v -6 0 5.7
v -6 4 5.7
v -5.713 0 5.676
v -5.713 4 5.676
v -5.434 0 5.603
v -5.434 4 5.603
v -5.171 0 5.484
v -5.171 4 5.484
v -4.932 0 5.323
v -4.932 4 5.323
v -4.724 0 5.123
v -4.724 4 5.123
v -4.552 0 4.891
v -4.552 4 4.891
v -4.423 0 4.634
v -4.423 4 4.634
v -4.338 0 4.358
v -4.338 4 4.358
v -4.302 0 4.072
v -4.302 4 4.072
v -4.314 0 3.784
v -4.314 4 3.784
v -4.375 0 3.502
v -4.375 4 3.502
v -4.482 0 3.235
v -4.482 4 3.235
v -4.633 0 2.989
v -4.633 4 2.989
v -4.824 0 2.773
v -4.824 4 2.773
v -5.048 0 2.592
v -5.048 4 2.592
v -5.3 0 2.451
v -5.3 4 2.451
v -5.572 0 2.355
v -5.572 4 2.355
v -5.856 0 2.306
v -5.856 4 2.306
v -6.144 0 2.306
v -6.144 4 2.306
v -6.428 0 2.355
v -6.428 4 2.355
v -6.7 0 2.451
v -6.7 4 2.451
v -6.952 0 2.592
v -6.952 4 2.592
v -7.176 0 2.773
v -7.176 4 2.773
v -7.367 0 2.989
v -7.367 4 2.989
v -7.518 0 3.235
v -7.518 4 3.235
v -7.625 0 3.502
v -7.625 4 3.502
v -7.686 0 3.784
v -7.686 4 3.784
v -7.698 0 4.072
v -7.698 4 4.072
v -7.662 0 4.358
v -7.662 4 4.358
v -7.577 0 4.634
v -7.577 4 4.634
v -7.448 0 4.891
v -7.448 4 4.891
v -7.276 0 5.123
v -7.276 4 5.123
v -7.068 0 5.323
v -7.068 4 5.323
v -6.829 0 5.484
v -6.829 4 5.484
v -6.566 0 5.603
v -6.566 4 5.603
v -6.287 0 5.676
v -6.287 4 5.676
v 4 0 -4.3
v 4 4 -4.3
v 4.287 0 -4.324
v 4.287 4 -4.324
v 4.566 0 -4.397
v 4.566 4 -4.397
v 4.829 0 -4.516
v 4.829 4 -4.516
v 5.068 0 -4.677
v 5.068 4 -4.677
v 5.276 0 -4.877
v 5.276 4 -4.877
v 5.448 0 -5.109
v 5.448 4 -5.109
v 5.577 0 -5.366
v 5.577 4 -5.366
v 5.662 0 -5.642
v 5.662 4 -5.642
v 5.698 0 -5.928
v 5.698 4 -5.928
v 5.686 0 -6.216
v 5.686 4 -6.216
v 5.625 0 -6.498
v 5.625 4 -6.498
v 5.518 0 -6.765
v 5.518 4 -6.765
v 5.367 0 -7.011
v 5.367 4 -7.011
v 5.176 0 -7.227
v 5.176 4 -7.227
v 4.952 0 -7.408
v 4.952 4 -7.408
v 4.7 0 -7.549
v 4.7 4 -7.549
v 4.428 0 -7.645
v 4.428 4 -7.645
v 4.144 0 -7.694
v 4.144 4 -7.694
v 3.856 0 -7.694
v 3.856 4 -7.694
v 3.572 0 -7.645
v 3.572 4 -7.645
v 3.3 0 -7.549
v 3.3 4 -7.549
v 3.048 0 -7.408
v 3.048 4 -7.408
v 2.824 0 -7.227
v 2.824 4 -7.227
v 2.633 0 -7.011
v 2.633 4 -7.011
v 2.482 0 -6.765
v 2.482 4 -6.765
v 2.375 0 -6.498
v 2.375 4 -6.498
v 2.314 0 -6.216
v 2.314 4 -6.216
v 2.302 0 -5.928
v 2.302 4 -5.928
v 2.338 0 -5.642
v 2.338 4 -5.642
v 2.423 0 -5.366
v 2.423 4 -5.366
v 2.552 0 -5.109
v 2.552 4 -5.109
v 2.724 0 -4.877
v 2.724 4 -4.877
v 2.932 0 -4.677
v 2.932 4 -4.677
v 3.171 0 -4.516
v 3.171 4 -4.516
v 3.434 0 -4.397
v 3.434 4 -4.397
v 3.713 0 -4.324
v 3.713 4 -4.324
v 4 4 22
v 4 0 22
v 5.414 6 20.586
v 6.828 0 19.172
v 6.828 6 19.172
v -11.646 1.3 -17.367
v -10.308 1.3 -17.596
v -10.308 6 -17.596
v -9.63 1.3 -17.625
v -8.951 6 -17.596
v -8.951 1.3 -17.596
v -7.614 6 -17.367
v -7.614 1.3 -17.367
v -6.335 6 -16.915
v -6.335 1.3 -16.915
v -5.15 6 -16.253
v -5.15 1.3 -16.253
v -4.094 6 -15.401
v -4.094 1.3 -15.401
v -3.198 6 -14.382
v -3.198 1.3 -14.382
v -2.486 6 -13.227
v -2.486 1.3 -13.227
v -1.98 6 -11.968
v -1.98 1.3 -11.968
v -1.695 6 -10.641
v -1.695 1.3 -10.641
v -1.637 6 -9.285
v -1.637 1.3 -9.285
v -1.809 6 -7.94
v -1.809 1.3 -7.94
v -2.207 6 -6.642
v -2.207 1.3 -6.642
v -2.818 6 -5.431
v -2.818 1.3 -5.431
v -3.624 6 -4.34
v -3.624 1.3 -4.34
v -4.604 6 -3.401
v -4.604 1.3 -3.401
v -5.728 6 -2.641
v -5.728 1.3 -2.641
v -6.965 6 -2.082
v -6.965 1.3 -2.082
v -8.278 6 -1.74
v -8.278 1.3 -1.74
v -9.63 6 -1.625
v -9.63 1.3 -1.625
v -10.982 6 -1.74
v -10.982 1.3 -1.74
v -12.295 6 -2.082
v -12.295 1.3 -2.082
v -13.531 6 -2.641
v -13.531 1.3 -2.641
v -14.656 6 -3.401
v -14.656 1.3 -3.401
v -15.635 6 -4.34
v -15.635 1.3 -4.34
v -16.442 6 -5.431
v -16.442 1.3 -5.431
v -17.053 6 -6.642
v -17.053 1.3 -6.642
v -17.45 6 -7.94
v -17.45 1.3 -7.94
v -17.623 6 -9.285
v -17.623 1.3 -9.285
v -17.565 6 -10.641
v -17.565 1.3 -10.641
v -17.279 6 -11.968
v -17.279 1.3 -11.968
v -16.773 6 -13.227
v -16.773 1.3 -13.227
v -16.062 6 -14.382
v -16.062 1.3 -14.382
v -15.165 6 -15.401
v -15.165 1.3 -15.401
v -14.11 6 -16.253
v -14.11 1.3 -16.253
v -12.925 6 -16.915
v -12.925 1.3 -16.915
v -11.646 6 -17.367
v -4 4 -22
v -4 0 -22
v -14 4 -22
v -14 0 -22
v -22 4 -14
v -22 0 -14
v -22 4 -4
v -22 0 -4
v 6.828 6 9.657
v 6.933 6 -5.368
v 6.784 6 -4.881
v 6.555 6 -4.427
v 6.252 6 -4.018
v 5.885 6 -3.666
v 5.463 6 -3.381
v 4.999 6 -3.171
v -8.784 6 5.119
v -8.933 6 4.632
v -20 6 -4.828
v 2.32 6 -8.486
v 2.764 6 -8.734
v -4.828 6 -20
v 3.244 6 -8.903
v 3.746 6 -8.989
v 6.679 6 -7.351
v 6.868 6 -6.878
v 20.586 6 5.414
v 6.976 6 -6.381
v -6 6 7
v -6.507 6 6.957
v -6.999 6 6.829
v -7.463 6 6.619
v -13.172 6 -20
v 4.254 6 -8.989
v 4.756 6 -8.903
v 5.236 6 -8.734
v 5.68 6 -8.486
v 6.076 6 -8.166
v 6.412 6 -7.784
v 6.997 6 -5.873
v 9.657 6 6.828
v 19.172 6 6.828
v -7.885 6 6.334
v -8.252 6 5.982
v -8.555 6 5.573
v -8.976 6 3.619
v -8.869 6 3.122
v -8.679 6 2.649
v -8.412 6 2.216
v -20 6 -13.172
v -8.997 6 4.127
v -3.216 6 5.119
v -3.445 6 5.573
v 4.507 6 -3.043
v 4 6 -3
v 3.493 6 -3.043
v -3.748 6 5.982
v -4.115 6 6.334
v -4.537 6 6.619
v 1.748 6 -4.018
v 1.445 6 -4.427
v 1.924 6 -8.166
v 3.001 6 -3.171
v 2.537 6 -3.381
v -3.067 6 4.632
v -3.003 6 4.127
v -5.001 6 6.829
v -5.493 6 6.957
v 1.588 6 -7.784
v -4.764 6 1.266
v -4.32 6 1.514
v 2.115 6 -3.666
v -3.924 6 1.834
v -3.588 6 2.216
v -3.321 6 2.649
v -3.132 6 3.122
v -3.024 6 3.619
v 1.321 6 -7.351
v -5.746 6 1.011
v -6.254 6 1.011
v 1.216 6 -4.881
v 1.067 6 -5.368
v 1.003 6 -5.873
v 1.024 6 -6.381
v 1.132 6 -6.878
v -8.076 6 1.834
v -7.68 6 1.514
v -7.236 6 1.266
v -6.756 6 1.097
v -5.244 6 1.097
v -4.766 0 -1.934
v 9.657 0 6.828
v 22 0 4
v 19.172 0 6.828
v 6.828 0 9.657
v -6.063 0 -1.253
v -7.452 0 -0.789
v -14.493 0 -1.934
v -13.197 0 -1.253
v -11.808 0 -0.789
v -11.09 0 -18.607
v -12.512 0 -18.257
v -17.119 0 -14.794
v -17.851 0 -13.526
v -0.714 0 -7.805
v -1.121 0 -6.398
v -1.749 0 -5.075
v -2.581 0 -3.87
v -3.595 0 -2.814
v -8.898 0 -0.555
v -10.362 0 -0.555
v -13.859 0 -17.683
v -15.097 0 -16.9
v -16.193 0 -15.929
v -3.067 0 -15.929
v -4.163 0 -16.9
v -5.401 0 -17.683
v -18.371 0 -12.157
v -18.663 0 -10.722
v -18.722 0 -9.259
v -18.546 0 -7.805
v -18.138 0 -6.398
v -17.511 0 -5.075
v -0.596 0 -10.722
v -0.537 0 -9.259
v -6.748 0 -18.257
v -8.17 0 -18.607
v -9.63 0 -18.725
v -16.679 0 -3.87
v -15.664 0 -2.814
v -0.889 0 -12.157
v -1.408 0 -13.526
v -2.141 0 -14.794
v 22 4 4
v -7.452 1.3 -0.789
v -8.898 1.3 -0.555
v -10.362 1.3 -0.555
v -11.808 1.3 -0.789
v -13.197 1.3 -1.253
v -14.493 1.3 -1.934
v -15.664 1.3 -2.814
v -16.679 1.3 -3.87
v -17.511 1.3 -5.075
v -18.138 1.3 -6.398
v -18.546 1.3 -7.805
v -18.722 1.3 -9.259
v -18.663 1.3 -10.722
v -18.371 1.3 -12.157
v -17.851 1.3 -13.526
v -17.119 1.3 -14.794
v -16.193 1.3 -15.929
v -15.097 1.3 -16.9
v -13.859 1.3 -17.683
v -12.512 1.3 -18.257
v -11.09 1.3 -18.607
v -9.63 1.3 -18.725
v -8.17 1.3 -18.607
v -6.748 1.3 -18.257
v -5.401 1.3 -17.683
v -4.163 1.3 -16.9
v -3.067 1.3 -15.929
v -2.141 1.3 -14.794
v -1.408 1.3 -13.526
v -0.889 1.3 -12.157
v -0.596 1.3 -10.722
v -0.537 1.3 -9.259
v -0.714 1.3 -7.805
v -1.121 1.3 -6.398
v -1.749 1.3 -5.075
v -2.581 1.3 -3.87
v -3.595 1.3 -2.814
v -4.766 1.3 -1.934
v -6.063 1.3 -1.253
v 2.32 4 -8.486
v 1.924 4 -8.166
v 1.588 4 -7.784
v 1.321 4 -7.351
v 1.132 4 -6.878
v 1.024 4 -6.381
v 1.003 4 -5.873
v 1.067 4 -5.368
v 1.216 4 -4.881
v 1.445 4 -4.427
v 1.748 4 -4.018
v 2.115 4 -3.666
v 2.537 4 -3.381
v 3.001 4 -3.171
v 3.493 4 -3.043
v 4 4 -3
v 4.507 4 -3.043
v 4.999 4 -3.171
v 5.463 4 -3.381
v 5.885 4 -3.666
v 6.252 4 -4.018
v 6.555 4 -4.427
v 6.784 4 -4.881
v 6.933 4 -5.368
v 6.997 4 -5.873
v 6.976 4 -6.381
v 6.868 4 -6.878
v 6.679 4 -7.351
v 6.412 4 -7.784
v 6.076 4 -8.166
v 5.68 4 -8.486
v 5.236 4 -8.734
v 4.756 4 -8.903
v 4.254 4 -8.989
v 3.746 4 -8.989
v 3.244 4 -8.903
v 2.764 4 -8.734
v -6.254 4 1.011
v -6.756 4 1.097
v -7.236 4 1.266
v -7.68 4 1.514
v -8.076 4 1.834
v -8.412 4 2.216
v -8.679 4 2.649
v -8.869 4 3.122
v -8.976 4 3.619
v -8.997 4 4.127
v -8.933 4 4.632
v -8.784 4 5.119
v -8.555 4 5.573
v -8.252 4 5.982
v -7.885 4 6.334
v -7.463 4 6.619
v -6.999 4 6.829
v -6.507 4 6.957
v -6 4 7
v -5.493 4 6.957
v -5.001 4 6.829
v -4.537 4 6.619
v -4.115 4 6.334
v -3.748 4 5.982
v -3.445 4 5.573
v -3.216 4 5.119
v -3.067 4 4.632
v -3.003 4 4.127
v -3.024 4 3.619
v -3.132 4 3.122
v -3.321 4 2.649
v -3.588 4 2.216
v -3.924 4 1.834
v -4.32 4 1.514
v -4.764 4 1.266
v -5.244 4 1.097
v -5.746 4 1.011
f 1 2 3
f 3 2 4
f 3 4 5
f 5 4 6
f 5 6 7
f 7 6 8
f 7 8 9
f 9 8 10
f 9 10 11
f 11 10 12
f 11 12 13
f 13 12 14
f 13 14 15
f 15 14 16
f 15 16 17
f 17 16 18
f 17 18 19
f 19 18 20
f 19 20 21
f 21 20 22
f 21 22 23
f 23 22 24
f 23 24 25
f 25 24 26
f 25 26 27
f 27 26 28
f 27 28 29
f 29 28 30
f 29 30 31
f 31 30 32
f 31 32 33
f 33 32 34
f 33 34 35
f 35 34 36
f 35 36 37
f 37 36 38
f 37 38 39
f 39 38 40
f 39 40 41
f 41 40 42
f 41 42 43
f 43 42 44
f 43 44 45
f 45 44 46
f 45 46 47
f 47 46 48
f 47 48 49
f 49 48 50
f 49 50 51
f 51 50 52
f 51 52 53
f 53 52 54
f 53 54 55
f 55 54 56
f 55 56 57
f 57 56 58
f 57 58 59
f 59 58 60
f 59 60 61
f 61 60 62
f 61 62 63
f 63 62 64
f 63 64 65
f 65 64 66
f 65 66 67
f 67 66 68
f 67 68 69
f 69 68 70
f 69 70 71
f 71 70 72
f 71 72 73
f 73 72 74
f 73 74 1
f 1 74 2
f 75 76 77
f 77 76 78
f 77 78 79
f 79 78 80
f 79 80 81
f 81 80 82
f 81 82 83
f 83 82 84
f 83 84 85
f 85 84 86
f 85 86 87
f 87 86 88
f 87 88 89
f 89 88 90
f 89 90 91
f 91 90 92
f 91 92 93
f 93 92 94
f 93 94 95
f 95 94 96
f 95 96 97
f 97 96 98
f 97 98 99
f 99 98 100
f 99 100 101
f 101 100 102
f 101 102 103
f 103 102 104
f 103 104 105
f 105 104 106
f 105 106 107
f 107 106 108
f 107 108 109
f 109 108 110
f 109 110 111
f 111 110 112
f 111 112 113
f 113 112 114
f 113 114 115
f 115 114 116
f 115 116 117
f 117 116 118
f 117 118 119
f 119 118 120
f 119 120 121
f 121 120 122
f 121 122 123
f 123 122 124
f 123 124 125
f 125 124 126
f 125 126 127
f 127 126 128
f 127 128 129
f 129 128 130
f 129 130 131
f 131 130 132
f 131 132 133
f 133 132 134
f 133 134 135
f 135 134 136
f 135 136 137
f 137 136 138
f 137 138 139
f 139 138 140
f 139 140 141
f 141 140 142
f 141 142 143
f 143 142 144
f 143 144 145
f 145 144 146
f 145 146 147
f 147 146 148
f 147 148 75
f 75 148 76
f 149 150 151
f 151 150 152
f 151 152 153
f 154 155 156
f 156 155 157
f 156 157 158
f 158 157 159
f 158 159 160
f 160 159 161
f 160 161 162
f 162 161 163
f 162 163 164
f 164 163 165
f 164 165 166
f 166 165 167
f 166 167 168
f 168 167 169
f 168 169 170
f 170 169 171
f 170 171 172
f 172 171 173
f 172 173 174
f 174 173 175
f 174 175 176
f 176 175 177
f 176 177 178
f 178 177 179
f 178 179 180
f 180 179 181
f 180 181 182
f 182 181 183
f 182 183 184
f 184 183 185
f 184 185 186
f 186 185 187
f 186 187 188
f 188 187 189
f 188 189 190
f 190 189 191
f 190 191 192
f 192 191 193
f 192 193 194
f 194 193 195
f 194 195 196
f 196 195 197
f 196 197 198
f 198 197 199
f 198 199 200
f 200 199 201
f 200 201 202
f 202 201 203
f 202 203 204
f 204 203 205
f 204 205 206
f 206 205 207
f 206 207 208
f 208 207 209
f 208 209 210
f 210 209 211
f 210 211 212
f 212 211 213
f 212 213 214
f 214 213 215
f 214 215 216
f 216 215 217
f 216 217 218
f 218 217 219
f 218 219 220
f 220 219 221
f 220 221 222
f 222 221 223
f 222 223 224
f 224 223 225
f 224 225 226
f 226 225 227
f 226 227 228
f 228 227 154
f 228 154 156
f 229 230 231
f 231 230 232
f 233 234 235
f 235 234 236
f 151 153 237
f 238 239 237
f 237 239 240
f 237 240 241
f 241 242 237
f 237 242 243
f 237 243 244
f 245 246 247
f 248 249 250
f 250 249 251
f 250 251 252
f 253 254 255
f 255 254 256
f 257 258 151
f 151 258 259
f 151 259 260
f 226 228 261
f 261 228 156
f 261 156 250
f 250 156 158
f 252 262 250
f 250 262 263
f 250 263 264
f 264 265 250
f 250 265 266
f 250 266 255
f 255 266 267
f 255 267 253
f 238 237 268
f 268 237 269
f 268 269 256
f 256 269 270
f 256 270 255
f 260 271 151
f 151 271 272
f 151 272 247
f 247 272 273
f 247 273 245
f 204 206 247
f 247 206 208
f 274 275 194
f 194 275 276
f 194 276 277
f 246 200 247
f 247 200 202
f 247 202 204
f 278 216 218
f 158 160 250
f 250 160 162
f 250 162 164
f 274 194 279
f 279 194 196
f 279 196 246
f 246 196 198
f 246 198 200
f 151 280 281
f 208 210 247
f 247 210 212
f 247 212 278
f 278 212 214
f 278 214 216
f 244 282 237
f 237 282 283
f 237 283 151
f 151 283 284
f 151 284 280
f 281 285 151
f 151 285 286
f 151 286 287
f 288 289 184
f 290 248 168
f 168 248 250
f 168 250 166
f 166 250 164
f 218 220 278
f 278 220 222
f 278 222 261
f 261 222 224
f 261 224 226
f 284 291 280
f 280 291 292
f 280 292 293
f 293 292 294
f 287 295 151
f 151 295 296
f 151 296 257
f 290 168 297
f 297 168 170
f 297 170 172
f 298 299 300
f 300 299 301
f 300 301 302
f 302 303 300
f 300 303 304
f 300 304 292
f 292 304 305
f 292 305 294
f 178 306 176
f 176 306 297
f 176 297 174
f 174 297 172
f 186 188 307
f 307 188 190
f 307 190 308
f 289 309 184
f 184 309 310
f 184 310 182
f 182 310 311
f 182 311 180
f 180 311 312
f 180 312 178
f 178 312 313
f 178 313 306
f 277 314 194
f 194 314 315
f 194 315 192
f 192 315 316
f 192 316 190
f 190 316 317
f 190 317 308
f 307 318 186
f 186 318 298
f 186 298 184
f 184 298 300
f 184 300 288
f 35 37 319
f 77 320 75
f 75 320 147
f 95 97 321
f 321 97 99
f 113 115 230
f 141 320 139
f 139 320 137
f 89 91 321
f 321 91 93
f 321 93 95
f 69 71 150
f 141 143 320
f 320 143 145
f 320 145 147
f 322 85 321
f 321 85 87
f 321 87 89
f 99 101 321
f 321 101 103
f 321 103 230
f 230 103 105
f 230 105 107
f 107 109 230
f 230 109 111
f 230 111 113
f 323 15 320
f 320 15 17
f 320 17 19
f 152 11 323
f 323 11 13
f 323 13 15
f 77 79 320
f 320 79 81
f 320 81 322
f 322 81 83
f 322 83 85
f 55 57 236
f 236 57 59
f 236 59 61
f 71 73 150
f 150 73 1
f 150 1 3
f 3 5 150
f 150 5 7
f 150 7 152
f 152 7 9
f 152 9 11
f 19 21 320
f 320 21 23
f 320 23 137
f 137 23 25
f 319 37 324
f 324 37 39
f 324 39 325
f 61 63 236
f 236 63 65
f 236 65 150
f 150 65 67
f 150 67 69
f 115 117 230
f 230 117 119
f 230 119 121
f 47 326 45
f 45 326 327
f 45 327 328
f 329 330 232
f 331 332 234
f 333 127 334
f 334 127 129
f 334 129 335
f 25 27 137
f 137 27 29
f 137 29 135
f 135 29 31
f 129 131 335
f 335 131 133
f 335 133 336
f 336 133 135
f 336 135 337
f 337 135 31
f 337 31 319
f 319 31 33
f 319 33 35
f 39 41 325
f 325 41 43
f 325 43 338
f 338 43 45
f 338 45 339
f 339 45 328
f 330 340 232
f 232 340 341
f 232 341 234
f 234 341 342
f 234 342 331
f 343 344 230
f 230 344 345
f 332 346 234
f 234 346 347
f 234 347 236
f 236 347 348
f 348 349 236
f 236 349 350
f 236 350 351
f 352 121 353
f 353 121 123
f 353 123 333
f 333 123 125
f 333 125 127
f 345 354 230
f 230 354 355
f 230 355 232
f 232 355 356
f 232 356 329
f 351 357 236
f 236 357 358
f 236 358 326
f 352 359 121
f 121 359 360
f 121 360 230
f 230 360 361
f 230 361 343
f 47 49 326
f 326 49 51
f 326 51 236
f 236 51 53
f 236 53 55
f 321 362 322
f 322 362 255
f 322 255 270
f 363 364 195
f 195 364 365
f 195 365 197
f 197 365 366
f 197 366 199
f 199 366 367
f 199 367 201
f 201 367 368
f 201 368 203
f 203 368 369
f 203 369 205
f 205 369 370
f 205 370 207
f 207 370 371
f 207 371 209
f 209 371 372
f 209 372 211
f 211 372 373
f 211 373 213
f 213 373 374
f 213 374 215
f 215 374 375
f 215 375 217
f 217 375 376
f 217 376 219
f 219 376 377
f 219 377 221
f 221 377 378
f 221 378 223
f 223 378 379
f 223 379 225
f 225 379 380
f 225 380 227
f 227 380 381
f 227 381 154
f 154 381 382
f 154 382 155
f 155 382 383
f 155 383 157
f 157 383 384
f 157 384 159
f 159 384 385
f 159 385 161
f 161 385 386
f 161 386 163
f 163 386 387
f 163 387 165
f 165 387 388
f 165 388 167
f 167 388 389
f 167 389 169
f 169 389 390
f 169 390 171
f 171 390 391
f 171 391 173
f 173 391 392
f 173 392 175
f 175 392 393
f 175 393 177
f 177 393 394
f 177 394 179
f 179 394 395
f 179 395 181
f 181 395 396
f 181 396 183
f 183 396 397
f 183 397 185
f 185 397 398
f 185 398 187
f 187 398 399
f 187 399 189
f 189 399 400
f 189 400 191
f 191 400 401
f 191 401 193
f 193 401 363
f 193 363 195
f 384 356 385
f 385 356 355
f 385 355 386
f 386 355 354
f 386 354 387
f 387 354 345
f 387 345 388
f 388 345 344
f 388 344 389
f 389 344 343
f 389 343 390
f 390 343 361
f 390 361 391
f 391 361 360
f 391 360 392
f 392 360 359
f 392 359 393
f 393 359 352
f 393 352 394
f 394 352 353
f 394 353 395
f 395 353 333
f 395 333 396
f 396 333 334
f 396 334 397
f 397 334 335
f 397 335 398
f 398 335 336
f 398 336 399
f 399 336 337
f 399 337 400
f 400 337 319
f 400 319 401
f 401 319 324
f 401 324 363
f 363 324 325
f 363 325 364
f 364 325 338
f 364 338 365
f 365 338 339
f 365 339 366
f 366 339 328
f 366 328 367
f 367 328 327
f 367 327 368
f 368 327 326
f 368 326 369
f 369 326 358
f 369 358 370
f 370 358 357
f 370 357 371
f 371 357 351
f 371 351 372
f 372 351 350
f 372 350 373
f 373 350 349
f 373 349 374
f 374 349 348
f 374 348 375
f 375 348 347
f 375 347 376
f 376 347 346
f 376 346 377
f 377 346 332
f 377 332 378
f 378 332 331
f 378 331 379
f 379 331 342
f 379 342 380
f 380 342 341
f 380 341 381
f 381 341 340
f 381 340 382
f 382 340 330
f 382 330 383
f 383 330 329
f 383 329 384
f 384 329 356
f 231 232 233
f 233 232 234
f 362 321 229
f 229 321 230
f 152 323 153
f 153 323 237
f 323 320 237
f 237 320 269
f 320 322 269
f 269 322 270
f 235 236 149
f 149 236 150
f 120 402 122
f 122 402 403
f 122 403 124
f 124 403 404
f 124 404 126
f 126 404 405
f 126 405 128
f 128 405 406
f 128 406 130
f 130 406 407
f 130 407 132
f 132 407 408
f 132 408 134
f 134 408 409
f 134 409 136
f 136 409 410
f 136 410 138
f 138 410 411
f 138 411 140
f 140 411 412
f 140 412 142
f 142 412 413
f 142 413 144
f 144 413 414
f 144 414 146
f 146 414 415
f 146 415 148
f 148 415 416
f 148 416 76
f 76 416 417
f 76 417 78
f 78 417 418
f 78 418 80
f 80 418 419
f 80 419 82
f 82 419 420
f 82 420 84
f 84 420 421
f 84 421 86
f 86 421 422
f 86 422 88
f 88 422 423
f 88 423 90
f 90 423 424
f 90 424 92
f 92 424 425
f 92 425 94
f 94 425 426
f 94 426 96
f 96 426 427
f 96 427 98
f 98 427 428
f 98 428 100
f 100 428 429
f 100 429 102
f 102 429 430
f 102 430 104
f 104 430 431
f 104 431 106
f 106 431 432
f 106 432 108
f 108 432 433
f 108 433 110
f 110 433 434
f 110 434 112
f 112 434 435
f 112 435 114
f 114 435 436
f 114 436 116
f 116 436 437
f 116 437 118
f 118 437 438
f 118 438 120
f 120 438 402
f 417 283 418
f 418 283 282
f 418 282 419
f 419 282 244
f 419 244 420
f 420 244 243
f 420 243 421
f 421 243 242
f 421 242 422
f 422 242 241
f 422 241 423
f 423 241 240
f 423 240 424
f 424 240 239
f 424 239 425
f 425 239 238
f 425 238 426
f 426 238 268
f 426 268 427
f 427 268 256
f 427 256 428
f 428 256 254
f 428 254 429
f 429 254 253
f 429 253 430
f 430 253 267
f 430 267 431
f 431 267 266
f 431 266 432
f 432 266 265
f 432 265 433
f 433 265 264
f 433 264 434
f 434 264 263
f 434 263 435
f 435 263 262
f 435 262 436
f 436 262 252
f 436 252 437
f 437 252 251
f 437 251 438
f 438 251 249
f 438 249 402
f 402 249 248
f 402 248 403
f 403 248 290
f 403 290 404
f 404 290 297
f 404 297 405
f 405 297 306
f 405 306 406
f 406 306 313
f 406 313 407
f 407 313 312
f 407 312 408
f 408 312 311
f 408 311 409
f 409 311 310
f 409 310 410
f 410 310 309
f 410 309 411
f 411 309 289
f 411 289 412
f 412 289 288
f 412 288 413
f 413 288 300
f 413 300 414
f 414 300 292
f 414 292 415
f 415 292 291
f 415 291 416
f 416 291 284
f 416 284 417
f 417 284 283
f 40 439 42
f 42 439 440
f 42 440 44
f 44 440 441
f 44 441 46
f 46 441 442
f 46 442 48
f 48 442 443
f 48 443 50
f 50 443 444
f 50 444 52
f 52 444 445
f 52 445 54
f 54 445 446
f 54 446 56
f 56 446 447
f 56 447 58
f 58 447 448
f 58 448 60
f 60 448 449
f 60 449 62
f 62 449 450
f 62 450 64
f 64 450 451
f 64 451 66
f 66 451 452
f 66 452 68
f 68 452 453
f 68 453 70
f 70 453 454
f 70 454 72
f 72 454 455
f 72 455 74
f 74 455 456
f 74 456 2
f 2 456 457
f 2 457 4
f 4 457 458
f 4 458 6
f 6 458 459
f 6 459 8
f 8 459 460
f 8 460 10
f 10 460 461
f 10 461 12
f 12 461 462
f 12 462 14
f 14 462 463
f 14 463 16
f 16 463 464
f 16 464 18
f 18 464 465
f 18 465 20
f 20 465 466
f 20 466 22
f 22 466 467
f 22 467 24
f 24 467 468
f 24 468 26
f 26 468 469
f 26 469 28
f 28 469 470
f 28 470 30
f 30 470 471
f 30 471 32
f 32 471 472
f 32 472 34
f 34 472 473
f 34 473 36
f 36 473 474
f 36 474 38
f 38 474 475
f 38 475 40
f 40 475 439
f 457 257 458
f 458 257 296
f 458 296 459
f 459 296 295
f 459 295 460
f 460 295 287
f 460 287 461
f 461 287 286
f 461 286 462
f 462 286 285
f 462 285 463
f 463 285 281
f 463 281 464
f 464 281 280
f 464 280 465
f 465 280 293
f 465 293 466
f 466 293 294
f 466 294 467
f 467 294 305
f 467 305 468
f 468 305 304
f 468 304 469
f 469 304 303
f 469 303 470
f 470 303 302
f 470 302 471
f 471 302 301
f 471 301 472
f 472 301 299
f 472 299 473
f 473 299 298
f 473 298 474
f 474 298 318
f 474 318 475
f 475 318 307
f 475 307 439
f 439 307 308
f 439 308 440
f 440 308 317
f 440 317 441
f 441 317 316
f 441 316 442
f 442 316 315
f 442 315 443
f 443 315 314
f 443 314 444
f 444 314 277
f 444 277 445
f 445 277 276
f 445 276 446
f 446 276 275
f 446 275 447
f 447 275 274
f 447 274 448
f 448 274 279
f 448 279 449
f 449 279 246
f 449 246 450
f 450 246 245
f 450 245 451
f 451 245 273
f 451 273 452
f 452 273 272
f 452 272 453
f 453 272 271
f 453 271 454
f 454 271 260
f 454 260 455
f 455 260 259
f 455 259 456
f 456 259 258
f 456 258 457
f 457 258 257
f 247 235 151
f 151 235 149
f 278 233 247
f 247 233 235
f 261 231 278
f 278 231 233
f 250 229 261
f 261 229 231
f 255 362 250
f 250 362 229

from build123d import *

# Parameters (mm, degrees)
SKETCH2_W           = 44
SKETCH2_H           = 44
BOSS_EXTRUDE1_DEPTH = 6
CHAMFER1_SIZE       = 18
SKETCH3_R           = 8
CUT_EXTRUDE1_DEPTH  = 32.685959036
SKETCH4_R           = 9.1
CUT_EXTRUDE2_DEPTH  = 1.3
CUT_EXTRUDE3_DEPTH  = 32.685959036
SKETCH7_R           = 1.7
CUT_EXTRUDE4_DEPTH  = 32.685959036
SKETCH8_R           = 3
CUT_EXTRUDE5_DEPTH  = 2
CHAMFER2_SIZE       = 2


with BuildPart() as part:
    # Sketch2 → Boss-Extrude1 (new body)
    with BuildSketch(Plane(origin=(0, 0, 0), x_dir=(1, 0, 0), z_dir=(0, 1, 0))):
        Rectangle(SKETCH2_W, SKETCH2_H)
    extrude(amount=BOSS_EXTRUDE1_DEPTH)

    # Chamfer1
    chamfer1_edges = [part.edges().sort_by_distance(p)[0] for p in [
        (22, 3, 22),
    ]]
    chamfer(chamfer1_edges, length=CHAMFER1_SIZE)

    # Sketch3 → Cut-Extrude1 (cut, through all)
    with BuildSketch(Plane(origin=(0, 6, 0), x_dir=(1, 0, 0), z_dir=(0, 1, 0))):
        with Locations(Location((-9.629833996, 9.625, 0), (0, 0, 270))):
            Circle(SKETCH3_R)
    extrude(amount=-CUT_EXTRUDE1_DEPTH, mode=Mode.SUBTRACT)

    # Sketch4 → Cut-Extrude2 (cut)
    with BuildSketch(Plane(origin=(0, 0, 0), x_dir=(-1, 0, 0), z_dir=(0, -1, 0))):
        with Locations(Location((9.629833996, 9.625, 0), (0, 0, 90))):
            Circle(SKETCH4_R)
    extrude(amount=-CUT_EXTRUDE2_DEPTH, mode=Mode.SUBTRACT)

    # Sketch5 → Cut-Extrude3 (cut, through all)
    with BuildSketch(Plane(origin=(0, 6, 0), x_dir=(1, 0, 0), z_dir=(0, 1, 0))):
        Polygon((-14, 22), (-22, 14), (-22, 22), align=None)
    extrude(amount=-CUT_EXTRUDE3_DEPTH, mode=Mode.SUBTRACT)

    # Sketch7 → Cut-Extrude4 (cut, through all)
    with BuildSketch(Plane(origin=(0, 6, 0), x_dir=(1, 0, 0), z_dir=(0, 1, 0))):
        with Locations(Location((4, 6, 0), (0, 0, 270))):
            Circle(SKETCH7_R)
        with Locations(Location((-6, -4, 0), (0, 0, 270))):
            Circle(SKETCH7_R)
        Polygon((-4, 22), (22, -4), (22, 22), align=None)
        Polygon((-22, 4), (4, -22), (-22, -22), align=None)
        Polygon((19.171572875, -6.828427125), (9.656854249, -6.828427125), (6.828427125, -9.656854249), (6.828427125, -19.171572875), align=None)
    extrude(amount=-CUT_EXTRUDE4_DEPTH, mode=Mode.SUBTRACT)

    # Sketch8 → Cut-Extrude5 (cut)
    with BuildSketch(Plane(origin=(0, 6, 0), x_dir=(1, 0, 0), z_dir=(0, 1, 0))):
        with Locations(Location((4, 6, 0), (0, 0, 270))):
            Circle(SKETCH8_R)
        with Locations(Location((-6, -4, 0), (0, 0, 270))):
            Circle(SKETCH8_R)
    extrude(amount=-CUT_EXTRUDE5_DEPTH, mode=Mode.SUBTRACT)

    # Chamfer2
    chamfer2_edges = [part.edges().sort_by_distance(p)[0] for p in [
        (-22, 6, -9),
        (-18, 6, -18),
        (-9, 6, -22),
        (-9, 6, 9),
        (9, 6, -9),
    ]]
    chamfer(chamfer2_edges, length=CHAMFER2_SIZE)


solid = part.part
